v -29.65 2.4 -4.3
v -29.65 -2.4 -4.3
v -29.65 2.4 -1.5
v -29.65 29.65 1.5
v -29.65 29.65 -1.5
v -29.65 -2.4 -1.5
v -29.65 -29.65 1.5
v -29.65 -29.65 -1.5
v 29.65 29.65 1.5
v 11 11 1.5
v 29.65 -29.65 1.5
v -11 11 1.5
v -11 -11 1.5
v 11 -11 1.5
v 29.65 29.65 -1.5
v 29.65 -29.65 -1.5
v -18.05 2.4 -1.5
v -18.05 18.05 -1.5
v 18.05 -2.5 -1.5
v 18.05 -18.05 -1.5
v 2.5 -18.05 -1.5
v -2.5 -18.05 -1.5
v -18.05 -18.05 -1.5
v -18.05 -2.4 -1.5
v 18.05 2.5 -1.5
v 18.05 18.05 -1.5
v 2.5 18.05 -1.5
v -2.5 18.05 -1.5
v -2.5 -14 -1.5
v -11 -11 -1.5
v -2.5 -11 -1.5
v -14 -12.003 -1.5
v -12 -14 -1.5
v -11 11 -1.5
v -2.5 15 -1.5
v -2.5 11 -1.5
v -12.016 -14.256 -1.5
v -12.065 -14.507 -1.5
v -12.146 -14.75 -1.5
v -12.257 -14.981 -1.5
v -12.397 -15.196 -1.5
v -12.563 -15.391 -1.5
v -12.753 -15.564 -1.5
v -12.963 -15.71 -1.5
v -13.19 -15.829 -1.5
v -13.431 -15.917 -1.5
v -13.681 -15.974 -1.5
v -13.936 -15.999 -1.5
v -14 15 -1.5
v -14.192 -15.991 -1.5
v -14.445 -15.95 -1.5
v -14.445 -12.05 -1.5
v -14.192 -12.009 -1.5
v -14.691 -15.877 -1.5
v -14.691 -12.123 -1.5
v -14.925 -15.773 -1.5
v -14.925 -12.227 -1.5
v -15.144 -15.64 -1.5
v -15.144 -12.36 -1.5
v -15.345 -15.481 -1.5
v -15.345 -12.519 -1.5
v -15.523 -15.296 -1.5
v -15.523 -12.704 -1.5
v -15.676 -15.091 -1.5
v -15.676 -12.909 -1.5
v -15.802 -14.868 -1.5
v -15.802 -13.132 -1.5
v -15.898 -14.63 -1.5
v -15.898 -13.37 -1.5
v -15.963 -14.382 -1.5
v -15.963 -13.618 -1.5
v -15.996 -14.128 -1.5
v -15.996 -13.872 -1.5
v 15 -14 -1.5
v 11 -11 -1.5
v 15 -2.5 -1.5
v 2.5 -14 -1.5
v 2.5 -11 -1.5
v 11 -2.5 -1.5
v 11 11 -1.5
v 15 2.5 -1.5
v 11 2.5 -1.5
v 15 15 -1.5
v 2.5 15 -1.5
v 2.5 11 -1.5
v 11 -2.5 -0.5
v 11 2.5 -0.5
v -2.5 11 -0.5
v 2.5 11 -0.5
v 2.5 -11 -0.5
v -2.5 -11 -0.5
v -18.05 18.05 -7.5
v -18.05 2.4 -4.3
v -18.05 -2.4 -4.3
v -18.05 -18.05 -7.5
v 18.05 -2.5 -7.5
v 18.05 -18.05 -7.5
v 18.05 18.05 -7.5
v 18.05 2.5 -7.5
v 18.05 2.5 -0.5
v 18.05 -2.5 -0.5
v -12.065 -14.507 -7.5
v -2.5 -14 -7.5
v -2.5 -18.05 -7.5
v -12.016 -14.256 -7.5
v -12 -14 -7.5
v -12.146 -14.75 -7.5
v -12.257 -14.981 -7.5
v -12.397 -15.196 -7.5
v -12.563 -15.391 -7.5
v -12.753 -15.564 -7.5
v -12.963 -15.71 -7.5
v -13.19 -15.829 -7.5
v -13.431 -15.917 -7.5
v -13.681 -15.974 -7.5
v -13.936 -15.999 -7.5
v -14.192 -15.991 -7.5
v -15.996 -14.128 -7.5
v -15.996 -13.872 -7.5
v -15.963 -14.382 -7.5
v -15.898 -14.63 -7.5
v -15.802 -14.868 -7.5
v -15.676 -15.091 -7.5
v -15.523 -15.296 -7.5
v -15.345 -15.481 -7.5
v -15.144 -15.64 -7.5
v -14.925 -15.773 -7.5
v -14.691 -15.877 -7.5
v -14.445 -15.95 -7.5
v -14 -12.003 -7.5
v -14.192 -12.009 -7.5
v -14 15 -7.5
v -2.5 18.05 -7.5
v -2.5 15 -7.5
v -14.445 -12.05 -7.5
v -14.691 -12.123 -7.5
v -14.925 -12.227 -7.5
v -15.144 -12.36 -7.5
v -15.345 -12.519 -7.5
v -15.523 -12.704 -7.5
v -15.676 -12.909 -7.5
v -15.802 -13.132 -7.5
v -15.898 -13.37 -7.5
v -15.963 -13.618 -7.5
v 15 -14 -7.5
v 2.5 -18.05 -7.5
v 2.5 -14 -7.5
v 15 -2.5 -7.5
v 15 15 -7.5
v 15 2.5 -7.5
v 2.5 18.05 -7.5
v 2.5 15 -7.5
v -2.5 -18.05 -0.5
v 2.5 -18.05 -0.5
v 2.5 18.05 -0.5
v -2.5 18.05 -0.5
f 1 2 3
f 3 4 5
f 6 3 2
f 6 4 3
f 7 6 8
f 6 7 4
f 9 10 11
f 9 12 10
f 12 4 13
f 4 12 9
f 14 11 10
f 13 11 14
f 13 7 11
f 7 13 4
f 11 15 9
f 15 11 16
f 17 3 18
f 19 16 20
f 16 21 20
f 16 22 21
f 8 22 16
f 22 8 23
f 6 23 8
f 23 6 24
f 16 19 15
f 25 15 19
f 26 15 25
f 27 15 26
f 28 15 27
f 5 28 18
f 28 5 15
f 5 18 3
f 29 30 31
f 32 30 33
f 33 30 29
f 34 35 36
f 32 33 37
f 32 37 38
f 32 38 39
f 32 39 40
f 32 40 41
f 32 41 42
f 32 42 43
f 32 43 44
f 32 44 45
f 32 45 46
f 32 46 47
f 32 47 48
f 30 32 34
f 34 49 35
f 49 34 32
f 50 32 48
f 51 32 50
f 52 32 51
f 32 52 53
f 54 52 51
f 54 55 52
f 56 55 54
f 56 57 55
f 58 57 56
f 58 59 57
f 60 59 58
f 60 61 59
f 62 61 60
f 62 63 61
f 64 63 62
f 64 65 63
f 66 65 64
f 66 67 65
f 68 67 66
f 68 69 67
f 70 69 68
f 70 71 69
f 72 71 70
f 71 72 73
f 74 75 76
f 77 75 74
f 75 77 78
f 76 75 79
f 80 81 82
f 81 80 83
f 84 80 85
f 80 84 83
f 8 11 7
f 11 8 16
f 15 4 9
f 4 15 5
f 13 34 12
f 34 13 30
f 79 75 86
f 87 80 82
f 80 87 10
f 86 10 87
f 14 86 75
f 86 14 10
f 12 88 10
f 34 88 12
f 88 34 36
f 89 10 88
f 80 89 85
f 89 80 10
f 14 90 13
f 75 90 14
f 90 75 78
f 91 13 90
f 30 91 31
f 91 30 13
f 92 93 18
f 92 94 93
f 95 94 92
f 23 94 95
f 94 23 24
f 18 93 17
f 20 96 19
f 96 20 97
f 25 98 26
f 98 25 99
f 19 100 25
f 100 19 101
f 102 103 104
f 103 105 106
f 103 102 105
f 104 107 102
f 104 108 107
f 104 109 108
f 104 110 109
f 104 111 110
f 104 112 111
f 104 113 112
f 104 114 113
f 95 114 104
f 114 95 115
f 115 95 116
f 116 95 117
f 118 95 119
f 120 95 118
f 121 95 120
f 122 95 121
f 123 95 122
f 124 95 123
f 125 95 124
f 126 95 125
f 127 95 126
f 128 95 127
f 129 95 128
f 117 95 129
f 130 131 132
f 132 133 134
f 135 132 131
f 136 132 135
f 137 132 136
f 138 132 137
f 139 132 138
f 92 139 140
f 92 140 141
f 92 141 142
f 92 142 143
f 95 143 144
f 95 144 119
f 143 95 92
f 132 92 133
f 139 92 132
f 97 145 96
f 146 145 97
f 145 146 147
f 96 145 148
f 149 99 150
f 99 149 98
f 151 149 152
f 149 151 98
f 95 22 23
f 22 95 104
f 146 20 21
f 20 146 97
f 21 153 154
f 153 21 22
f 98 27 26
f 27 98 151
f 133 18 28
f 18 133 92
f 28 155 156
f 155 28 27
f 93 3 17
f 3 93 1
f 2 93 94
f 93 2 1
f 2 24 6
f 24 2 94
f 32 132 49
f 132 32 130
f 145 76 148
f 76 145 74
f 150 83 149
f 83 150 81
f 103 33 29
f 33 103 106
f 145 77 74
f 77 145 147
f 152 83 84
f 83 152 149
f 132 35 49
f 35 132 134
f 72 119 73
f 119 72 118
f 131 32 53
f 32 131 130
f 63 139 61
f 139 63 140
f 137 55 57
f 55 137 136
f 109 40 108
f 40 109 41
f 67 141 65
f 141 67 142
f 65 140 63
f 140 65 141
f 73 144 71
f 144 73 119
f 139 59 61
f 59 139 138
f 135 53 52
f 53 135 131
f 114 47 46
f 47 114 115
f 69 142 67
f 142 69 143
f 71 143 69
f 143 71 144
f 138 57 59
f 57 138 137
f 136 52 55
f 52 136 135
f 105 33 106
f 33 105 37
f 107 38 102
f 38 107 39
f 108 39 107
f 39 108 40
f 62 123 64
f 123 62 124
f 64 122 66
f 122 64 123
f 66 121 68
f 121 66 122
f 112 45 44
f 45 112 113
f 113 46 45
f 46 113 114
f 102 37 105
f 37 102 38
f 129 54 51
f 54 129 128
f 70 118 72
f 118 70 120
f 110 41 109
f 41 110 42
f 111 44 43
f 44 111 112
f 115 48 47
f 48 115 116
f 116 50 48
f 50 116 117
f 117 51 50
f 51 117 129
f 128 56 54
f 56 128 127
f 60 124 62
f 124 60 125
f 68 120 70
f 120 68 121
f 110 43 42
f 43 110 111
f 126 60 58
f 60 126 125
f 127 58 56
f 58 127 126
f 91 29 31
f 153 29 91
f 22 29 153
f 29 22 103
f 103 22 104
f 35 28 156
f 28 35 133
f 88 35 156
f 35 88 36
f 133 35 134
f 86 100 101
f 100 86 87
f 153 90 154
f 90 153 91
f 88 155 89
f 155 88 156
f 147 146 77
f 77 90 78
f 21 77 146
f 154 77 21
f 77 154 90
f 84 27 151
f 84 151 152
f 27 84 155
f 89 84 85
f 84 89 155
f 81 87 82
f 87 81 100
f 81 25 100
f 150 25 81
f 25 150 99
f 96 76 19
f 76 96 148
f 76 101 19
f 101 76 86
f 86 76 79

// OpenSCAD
// file: globals.scad
// variables and global things for a single substrate holder
// to position a PCB with pogo-pins relative to a solar cell substrate
// for electrical characterization under illumination
// written by grey@christoforo.net
// on 13 OCT 2015
// numbers in mm
$fn = 49; // defines arc roughness

keyWidth = 5; // for orientation key between cap and body
keyHeight = 3; // for orientation key between cap and body

//variables for body
aboveShelf=9; //height above shelf
belowShelf=34; //height below shelf
wallThickness=3; //wall thickness above PCB shelf
boardBuffer=0.3; //tolerance around board
board=36; //PCB len, wid
outletDown=15; // cable outlet offset from shelf
mountingHoleOffset = 2.3; //distance between edge of PCB and center of hole
holeDiameter = 2.6; //PCB mounting hole diameter
holeDepth = 5; //PCB mounting hole depth
holeDiameterTol = 0.2; //draw the mounting holes this much smaller
legSquare = 7; // leg slize square dim
shelfWidth = 1.5; //width of small shelf (& additional wall thickness of bottom half wall)
bodyWingWidth = 5;

//variables for cap
capTol=0.2; //tolerance for cap fitting
window=22; //window len,wid
substrate=28; //substrate len,wid
subsTol=1; // tolerance extra room around substrate
substrateOffsetX=subsTol/2; //substrate offset from centerline
substrateOffsetY=subsTol/2; //substrate offset from centerline
capInsetHeight = 6;
capOverhang = 10;
tweezerSlotWidth = 5;
tweezerSlotIndent = 1;

//other variables
PCBThickness = 1.5;


// design checks
//assert(aboveShelf>(capInsetHeight+PCBThickness,'ERROR: Object overlap detected.') //assert doesn't exist (yet!)

// calculated body vars
totalHeight=belowShelf+aboveShelf;
cubeInner=board+boardBuffer;
cubeOuter=cubeInner+wallThickness;

sideOpeningWidth=cubeOuter-2*legSquare; //width of opening in side for wire exit
sideOpeningHeight=10; //height of opening in side for wire exit


//edge thing, Zmax=0, y=centered, mirrorable across @x=0 plane
module edgeThing(){
    translate([0,-wingWidth/2,-wallThickness*2])
    difference(){
        cube([wingWidth,wingLength,wallThickness*2]);
        cube([capTol,wingLength,wallThickness]); //cutout for cap tolerace
    }
}
// main file
// cap geometery for a single substrate holder
// written by grey@christoforo.net
// on 13 OCT 2015

include <globals.scad>

difference(){
    union() {
        //top & window
        render() difference(){
            cube([cubeOuter+capOverhang*2,cubeOuter+capOverhang*2,wallThickness],center=true);
            cube([window,window,wallThickness],center=true);
        }
        
        //cap & substrate positioner
        translate([0, 0, -wallThickness/2-capInsetHeight/2])
        render() difference(){
            union(){
                cube([cubeInner-capTol,cubeInner-capTol,capInsetHeight],center=true);
                localKeyHeight = keyHeight-capTol;
                localKeyWidth = keyWidth-capTol;
                translate([-(cubeOuter+capOverhang*2)/2,-localKeyWidth/2,capInsetHeight/2-localKeyHeight]) cube([(cubeOuter+capOverhang*2)/2,localKeyWidth,localKeyHeight]); // key
            }
            translate([substrateOffsetX,substrateOffsetY,0]) union(){
                cube([substrate+subsTol,substrate+subsTol,capInsetHeight],center=true);
                translate([-(substrate+subsTol)/2,-(substrate+subsTol)/2,-capInsetHeight/2]) cylinder(capInsetHeight,d=4); //allignment corner indicator
            }
        }
    }
    //tweezer slots
    translate([0,0,tweezerSlotIndent/2-wallThickness/2-capInsetHeight/2]) {
        cube([tweezerSlotWidth,cubeInner-capTol,capInsetHeight+tweezerSlotIndent],center=true);
        rotate(a=[0,0,-90]) translate([0,(cubeInner-capTol)/4,0]) cube([tweezerSlotWidth,(cubeInner-capTol)/2,capInsetHeight+tweezerSlotIndent],center=true);
        }
}
